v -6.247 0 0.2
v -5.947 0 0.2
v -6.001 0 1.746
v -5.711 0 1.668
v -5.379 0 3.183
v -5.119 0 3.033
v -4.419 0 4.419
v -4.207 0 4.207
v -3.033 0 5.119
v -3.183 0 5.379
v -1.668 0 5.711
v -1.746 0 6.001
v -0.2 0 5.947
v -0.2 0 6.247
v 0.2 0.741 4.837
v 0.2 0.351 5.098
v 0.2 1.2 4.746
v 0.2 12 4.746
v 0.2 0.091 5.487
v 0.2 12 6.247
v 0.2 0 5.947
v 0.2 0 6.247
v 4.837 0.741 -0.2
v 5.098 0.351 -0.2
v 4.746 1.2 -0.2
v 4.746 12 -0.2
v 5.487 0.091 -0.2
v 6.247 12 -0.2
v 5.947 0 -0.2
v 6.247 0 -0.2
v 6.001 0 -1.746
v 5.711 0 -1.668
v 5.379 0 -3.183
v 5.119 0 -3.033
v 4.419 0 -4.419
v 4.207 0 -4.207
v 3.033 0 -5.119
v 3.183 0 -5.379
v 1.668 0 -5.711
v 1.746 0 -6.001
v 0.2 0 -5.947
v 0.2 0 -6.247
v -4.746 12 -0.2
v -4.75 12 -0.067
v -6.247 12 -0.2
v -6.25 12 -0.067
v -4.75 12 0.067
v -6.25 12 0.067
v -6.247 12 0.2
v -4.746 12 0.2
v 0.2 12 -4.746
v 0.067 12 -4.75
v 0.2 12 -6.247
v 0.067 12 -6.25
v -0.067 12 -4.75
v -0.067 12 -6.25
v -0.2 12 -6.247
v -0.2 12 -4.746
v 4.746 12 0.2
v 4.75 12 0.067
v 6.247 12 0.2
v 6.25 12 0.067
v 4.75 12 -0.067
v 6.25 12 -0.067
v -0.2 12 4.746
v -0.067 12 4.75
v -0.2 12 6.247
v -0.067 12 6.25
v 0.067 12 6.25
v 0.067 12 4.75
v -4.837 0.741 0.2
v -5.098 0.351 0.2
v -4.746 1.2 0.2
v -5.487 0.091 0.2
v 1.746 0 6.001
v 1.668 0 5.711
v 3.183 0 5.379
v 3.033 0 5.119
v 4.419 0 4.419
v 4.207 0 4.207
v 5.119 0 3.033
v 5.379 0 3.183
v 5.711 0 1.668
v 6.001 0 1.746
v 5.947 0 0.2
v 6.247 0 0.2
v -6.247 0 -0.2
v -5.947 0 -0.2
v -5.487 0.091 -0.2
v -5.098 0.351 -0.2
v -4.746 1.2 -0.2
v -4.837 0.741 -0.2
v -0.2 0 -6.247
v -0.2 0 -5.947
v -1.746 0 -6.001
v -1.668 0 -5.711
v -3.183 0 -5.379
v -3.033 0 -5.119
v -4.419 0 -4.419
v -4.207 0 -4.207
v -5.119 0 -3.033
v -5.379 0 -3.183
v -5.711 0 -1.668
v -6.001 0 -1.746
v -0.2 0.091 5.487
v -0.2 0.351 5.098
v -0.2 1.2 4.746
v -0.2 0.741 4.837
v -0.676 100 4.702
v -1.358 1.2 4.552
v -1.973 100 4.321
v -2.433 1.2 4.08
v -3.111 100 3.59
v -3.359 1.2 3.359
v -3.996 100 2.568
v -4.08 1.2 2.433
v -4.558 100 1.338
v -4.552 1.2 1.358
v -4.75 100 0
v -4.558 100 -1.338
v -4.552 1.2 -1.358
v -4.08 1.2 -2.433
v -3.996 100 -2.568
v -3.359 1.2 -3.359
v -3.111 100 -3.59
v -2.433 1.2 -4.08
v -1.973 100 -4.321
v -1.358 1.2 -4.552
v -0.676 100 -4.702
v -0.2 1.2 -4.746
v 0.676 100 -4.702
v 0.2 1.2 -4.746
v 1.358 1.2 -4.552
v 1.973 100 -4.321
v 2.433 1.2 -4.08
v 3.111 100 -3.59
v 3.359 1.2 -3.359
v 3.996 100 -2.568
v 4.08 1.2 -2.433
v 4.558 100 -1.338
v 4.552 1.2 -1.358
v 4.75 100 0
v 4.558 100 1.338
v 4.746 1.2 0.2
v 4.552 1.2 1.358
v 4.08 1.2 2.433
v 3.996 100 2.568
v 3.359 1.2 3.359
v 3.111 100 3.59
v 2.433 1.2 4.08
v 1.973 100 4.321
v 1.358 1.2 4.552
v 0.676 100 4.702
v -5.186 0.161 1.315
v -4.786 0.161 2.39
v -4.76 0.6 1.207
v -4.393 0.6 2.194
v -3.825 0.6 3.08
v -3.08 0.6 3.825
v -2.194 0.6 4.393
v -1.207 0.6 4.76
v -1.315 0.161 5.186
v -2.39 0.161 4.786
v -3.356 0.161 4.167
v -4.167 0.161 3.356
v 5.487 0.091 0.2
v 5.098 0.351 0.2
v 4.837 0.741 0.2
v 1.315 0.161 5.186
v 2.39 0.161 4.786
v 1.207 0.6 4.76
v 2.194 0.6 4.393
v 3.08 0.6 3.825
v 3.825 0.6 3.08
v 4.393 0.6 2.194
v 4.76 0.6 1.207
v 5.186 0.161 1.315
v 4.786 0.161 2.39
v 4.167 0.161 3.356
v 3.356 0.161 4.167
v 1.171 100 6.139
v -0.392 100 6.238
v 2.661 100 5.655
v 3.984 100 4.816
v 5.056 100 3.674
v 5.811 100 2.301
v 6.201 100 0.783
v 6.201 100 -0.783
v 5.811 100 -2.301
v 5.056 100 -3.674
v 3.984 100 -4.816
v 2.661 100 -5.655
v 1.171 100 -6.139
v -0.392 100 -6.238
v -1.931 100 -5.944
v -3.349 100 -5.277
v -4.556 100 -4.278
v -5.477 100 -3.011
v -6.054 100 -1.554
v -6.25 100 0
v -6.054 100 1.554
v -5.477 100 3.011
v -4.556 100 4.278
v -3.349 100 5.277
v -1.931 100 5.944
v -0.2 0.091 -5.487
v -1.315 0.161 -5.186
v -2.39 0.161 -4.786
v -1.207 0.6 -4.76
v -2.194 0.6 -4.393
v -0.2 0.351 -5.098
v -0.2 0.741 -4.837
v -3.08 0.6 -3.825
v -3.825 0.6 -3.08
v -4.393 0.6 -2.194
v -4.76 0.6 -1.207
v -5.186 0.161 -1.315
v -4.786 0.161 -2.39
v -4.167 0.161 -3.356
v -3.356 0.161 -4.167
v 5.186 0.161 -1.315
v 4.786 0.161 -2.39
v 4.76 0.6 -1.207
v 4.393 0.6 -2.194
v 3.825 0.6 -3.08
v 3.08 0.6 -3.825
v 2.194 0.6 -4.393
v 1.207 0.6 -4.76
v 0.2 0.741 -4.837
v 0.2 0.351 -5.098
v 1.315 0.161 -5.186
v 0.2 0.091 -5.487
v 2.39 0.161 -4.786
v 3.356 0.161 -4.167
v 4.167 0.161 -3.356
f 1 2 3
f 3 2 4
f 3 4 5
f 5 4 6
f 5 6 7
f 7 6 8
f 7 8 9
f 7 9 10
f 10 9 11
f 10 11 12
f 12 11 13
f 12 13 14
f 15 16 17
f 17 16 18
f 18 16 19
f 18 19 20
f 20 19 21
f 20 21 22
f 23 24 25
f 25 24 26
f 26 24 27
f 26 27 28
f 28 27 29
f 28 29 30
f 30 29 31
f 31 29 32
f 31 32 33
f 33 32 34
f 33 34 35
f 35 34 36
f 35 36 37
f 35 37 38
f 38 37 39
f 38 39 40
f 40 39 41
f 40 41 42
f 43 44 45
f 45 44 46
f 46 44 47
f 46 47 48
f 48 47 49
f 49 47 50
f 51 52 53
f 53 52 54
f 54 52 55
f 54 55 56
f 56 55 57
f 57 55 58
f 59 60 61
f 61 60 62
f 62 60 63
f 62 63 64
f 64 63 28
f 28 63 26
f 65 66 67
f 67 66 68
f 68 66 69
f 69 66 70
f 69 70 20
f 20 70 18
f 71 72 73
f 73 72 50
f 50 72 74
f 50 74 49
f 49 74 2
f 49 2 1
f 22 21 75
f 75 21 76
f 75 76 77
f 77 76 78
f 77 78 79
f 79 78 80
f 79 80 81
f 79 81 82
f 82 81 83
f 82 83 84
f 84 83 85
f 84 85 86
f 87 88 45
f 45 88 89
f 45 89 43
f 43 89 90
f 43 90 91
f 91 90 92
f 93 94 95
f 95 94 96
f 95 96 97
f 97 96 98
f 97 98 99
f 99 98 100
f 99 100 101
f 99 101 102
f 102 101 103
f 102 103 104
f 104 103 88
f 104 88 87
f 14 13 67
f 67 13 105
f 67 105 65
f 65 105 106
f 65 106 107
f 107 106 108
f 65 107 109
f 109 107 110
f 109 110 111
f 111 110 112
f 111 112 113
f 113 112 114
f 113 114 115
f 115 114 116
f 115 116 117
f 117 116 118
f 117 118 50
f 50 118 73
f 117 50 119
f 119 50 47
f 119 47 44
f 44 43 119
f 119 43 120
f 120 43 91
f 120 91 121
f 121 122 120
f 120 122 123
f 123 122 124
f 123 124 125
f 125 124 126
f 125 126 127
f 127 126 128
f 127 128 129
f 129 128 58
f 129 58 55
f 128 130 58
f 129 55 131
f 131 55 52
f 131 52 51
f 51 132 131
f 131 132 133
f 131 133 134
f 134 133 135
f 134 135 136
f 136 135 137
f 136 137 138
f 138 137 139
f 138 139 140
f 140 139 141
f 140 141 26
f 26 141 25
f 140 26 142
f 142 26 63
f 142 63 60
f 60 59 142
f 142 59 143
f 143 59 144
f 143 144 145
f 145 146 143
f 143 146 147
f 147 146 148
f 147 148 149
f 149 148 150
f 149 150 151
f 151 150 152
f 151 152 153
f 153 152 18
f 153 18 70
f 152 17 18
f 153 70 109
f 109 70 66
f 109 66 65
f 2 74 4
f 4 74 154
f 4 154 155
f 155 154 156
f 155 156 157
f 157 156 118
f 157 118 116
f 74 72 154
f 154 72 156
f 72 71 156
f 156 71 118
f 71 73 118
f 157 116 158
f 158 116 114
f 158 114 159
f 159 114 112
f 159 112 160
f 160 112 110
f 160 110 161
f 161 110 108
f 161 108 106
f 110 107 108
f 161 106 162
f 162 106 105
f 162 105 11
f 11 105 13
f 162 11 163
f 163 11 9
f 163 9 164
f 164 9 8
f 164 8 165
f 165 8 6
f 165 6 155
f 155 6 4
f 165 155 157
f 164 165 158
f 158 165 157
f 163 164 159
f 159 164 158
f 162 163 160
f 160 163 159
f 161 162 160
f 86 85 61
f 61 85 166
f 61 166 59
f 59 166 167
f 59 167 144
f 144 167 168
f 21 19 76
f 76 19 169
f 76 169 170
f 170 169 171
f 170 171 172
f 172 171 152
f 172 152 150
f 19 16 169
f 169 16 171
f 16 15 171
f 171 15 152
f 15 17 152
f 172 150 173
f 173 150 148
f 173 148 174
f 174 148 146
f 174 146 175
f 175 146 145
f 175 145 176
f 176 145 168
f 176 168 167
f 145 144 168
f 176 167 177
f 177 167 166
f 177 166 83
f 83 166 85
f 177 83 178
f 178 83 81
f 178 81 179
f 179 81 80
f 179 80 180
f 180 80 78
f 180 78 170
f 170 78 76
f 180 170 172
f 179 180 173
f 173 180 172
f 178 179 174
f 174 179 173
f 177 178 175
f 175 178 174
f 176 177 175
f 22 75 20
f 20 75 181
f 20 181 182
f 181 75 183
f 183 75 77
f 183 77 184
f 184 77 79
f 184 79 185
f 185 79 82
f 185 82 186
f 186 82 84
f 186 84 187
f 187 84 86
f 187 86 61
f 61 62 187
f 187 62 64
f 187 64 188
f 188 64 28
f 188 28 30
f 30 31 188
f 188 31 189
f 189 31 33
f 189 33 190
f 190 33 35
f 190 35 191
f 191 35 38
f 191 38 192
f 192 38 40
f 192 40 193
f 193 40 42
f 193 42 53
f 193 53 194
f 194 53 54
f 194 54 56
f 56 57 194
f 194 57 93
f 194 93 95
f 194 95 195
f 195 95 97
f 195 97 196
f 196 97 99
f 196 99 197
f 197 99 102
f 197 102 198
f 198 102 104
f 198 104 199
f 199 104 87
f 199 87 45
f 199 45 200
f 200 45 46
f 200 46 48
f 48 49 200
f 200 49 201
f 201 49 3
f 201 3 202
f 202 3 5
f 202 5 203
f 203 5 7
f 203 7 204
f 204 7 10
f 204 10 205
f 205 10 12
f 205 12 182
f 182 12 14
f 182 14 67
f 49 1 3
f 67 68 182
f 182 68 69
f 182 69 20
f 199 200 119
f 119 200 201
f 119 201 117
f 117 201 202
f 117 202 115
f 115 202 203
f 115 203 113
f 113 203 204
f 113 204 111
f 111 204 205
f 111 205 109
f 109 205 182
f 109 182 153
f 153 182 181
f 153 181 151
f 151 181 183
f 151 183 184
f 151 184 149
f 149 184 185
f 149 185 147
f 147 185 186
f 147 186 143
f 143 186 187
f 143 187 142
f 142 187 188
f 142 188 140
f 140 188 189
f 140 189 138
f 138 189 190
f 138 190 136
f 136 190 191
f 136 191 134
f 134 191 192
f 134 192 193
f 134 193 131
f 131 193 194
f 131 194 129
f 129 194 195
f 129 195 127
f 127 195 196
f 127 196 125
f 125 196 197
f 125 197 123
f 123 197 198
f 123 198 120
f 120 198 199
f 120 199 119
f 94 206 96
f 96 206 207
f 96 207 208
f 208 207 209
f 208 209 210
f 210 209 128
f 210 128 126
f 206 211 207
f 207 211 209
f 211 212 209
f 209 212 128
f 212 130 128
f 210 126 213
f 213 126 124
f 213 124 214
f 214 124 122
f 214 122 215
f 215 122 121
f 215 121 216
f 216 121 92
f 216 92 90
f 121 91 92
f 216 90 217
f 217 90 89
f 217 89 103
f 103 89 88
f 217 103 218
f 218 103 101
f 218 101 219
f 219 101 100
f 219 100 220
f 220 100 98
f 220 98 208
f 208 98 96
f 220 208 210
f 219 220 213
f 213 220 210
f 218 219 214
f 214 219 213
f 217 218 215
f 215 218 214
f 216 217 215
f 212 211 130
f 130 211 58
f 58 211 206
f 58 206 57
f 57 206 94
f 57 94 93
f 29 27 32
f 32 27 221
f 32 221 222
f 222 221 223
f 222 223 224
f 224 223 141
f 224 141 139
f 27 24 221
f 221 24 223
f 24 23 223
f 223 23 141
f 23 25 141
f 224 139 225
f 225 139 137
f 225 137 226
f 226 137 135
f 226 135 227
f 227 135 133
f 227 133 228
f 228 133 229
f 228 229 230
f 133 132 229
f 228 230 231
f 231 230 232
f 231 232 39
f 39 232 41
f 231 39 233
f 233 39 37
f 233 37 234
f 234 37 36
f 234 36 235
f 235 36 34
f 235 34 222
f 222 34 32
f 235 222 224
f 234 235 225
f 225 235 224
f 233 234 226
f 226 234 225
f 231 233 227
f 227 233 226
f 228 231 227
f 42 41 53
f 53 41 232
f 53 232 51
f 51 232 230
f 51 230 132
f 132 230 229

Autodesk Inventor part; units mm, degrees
ref_plane "YZ Plane" through (0, 0, 0) normal (1, 0, 0) x (0, 1, 0)
ref_plane "XZ Plane" through (0, 0, 0) normal (0, 1, 0) x (-1, 0, 0)
ref_plane "XY Plane" through (0, 0, 0) normal (0, 0, 1) x (1, 0, 0)
sketch "Sketch1" plane through (0, 0, 0) normal (0, 1, 0) x (-1, 0, 0)
  circle A0 centre (0, 0) radius 4.75
  circle A1 centre (0, 0) radius 6.25
  dimension "d0" = 9.5
  dimension "d1" = 1.5
extrude "Extrusion1" add sketch "Sketch1" along normal blind 100
sketch "Sketch2" plane through (0, 0, 0) normal (0, -1, 0) x (1, 0, 0)
  line L0 (-6.25, -0.2) -> (6.25, -0.2)
  line L1 (6.25, -0.2) -> (6.25, 0.2)
  line L2 (6.25, 0.2) -> (-6.25, 0.2)
  line L3 (-6.25, 0.2) -> (-6.25, -0.2)
  line L4 (-0.2, 6.25) -> (-0.2, -6.25)
  line L5 (0.2, -6.25) -> (0.2, 6.25)
  line L6 (-0.2, -6.25) -> (0.2, -6.25)
  line L7 (0.2, 6.25) -> (-0.2, 6.25)
  line L8 (-6.25, -0.2) -> (6.25, -0.2)
  line L9 (6.25, 0.2) -> (-6.25, 0.2)
  line L10 (6.25, -0.2) -> (6.25, 0.2)
  line L11 (-6.25, 0.2) -> (-6.25, -0.2)
  line L12 (0.2, -6.25) -> (0.2, 6.25)
  line L13 (-0.2, 6.25) -> (-0.2, -6.25)
  line L14 (0.2, 6.25) -> (-0.2, 6.25)
  line L15 (-0.2, -6.25) -> (0.2, -6.25)
  point P0 (0, 0)
  point P1 (0.2, -0.2)
  point P2 (0.2, 0.2)
  point P3 (-0.2, 0.2)
  point P4 (-0.2, -0.2)
  dimension "d4" = 12.5
  dimension "d5" = 6.25
  dimension "d6" = 0.4
  dimension "d7" = 0.2
  dimension "d10" = 360
extrude "Extrusion2" cut sketch "Sketch2" against normal blind 12
fillet "Fillet1" radius 1.2 4 edges at (-3.3588, 0, -3.3588) (3.3588, 0, -3.3588) (3.3588, 0, 3.3588) (-3.3588, 0, 3.3588)
properties part number "Turret_extend"
